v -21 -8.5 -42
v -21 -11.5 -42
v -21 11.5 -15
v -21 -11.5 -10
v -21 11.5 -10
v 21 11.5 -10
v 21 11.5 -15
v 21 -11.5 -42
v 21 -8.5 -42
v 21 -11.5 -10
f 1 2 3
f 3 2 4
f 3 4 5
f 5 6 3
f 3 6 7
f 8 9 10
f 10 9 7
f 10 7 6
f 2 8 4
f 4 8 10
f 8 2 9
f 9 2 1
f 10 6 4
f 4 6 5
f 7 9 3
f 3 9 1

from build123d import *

# Parameters (mm, degrees)
SKETCH5_W           = 42
SKETCH5_H           = 23
BOSS_EXTRUDE2_DEPTH = 32
CUT_EXTRUDE3_DEPTH  = 42


with BuildPart() as part:
    # Sketch5 → Boss-Extrude2 (new body)
    with BuildSketch(Plane.XY.offset(-10)):
        Rectangle(SKETCH5_W, SKETCH5_H)
    extrude(amount=-BOSS_EXTRUDE2_DEPTH)

    # Sketch6 → Cut-Extrude3 (cut)
    with BuildSketch(Plane.ZY.offset(21)):
        Polygon((-42, 11.5), (-42, -8.5), (-15, 11.5), align=None)
    extrude(amount=-CUT_EXTRUDE3_DEPTH, mode=Mode.SUBTRACT)


solid = part.part
